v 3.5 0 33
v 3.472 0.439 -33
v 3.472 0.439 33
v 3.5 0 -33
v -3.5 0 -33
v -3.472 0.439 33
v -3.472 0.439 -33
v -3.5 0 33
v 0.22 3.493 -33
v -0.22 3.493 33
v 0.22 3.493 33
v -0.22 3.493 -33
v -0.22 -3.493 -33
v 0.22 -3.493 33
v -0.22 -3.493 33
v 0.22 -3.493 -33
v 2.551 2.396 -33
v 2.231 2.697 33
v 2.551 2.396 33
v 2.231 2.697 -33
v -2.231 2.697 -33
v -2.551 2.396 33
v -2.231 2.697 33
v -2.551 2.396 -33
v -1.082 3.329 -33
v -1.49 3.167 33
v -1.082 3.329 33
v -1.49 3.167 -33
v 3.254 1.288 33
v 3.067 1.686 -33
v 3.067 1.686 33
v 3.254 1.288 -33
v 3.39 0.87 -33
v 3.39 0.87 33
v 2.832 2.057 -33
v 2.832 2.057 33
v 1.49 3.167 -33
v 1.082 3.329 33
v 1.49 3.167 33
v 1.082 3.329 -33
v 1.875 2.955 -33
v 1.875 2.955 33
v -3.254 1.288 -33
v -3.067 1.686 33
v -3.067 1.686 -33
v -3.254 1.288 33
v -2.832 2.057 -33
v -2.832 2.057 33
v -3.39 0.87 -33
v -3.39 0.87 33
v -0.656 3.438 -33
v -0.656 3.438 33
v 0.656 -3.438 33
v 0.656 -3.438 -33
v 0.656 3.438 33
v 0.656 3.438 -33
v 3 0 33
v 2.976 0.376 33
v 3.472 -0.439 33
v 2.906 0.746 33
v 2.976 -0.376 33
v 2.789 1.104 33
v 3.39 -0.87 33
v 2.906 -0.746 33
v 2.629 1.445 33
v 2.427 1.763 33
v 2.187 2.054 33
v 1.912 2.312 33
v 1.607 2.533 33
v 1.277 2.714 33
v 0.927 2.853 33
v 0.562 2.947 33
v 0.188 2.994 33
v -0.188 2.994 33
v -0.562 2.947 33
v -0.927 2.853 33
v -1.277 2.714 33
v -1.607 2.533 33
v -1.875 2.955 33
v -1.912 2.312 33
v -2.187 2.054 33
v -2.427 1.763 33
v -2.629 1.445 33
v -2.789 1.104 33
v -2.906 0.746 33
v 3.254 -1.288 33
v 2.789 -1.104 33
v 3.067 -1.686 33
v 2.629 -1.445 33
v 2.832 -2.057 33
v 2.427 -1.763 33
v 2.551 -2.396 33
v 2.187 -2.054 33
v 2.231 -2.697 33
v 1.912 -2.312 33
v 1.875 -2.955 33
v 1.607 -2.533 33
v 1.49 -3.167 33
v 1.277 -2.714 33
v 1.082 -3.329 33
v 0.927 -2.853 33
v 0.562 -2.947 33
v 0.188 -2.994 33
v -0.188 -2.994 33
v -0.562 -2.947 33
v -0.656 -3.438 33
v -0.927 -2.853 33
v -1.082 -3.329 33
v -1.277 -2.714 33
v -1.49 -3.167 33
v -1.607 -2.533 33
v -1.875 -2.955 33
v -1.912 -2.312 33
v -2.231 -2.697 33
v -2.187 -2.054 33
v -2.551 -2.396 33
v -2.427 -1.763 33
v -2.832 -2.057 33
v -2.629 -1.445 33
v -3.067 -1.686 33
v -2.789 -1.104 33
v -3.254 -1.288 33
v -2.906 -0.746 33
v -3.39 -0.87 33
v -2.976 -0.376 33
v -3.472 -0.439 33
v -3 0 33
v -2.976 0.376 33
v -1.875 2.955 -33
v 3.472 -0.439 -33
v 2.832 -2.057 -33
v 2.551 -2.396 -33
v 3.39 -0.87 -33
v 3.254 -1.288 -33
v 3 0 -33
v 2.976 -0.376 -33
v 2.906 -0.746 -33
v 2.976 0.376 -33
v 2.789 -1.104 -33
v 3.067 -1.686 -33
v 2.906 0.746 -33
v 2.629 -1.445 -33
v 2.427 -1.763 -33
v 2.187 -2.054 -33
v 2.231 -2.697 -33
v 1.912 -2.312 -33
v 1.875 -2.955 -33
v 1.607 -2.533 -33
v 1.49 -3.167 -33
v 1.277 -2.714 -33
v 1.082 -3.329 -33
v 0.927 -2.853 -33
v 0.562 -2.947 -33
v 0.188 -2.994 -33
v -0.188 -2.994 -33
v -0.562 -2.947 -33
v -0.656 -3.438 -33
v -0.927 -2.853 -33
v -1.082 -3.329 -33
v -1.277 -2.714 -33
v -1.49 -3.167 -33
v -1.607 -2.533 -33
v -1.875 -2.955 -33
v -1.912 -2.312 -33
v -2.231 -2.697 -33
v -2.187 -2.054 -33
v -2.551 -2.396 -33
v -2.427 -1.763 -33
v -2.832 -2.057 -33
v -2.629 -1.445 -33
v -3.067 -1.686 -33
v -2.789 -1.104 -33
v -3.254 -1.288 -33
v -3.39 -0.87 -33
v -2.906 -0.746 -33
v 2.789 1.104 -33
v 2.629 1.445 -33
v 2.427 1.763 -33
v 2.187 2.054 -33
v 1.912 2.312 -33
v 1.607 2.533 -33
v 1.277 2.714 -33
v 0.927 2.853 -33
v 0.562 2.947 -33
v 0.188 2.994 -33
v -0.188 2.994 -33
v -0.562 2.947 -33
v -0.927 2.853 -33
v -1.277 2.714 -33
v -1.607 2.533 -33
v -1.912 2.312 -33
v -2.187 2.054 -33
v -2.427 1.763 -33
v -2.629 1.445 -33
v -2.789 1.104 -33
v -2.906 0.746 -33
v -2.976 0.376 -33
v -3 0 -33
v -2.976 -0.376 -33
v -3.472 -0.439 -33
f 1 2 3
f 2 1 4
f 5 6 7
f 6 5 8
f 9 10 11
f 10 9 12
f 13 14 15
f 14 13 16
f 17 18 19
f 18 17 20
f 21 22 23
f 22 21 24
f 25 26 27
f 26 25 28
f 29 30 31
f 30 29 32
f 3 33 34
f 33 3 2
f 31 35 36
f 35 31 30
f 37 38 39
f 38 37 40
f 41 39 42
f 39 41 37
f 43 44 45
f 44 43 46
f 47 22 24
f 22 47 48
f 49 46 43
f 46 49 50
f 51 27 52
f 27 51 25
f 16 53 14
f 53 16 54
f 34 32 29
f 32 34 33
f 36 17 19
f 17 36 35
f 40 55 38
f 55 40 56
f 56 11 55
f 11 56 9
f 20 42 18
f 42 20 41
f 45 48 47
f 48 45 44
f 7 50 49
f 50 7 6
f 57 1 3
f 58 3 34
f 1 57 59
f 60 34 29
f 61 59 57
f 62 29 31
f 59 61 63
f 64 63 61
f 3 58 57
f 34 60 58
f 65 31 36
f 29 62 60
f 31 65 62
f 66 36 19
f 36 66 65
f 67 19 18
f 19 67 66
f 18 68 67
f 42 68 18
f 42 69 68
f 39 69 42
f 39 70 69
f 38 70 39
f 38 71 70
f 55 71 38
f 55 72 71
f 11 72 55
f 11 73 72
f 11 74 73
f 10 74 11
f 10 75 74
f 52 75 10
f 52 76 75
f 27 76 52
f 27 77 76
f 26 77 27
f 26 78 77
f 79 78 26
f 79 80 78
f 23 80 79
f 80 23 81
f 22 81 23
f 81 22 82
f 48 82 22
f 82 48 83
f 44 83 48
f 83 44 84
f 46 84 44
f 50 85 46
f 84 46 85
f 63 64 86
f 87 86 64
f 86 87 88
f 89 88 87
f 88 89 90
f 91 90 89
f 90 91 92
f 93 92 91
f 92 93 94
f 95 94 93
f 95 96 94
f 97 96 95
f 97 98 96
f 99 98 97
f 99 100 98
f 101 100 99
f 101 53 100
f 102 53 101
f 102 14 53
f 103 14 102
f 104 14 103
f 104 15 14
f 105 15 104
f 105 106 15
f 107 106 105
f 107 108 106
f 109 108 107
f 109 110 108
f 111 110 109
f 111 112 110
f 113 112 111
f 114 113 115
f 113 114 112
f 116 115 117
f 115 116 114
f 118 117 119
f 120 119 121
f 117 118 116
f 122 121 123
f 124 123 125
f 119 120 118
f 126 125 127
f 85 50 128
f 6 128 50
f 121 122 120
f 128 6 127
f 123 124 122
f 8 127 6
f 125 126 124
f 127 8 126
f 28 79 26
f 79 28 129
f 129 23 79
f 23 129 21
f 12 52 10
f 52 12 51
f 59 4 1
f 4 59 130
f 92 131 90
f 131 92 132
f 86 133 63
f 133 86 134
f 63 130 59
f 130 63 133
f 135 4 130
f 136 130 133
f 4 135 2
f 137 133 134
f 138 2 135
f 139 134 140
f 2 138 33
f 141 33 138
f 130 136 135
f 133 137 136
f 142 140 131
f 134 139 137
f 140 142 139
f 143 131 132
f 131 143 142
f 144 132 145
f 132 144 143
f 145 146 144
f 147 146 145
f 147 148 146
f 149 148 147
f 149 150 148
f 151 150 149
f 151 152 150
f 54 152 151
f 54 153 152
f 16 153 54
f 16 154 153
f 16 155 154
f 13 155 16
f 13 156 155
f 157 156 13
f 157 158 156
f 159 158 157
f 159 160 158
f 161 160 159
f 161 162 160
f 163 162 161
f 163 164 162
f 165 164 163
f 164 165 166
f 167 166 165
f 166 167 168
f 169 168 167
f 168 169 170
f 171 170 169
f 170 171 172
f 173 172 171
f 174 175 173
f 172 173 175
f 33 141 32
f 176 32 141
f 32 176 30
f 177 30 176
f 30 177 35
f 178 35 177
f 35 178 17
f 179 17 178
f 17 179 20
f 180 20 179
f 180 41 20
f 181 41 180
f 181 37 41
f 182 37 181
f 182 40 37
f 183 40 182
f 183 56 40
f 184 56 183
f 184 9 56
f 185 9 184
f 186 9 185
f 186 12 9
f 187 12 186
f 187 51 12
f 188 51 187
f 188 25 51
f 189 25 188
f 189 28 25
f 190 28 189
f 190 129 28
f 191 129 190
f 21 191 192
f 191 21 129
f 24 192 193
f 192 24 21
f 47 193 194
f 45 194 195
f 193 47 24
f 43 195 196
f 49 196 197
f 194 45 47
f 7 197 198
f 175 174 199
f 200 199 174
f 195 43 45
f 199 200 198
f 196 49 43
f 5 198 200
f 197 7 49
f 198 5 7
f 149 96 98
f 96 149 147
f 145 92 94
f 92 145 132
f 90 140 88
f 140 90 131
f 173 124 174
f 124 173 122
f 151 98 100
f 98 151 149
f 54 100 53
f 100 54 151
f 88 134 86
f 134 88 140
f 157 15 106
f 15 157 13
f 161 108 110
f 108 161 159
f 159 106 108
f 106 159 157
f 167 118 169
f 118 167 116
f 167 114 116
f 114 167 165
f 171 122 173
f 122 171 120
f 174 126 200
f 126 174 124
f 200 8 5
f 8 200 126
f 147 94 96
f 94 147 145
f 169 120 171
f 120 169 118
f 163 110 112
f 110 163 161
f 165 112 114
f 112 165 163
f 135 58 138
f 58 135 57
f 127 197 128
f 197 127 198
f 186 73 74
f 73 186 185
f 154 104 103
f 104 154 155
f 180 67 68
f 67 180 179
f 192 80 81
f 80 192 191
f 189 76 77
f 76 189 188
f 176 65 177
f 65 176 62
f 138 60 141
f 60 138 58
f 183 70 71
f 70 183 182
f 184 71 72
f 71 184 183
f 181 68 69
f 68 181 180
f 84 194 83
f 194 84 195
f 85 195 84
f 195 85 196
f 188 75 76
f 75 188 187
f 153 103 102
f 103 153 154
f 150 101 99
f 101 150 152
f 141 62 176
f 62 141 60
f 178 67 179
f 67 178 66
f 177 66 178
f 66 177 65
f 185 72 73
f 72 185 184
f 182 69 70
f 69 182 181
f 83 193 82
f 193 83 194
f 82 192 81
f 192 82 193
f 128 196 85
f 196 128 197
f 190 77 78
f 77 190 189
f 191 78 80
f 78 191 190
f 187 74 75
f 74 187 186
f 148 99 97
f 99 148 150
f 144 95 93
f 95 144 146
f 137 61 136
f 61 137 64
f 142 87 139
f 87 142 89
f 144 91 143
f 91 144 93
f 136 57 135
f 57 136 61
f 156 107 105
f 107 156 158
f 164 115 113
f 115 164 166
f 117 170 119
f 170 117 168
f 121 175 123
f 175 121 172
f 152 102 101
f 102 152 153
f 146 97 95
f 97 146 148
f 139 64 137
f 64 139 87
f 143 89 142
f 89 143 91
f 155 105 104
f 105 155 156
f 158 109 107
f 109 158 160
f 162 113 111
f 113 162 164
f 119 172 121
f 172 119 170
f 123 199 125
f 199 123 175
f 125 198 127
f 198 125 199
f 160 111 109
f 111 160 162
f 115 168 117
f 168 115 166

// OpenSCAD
$fn = 50;


difference() {
	union() {
		translate(v = [0, 0, -33.0000000000]) {
			cylinder(h = 66, r = 3.5000000000);
		}
	}
	union() {
		translate(v = [0, 0, -100.0000000000]) {
			cylinder(h = 200, r = 3);
		}
	}
}
